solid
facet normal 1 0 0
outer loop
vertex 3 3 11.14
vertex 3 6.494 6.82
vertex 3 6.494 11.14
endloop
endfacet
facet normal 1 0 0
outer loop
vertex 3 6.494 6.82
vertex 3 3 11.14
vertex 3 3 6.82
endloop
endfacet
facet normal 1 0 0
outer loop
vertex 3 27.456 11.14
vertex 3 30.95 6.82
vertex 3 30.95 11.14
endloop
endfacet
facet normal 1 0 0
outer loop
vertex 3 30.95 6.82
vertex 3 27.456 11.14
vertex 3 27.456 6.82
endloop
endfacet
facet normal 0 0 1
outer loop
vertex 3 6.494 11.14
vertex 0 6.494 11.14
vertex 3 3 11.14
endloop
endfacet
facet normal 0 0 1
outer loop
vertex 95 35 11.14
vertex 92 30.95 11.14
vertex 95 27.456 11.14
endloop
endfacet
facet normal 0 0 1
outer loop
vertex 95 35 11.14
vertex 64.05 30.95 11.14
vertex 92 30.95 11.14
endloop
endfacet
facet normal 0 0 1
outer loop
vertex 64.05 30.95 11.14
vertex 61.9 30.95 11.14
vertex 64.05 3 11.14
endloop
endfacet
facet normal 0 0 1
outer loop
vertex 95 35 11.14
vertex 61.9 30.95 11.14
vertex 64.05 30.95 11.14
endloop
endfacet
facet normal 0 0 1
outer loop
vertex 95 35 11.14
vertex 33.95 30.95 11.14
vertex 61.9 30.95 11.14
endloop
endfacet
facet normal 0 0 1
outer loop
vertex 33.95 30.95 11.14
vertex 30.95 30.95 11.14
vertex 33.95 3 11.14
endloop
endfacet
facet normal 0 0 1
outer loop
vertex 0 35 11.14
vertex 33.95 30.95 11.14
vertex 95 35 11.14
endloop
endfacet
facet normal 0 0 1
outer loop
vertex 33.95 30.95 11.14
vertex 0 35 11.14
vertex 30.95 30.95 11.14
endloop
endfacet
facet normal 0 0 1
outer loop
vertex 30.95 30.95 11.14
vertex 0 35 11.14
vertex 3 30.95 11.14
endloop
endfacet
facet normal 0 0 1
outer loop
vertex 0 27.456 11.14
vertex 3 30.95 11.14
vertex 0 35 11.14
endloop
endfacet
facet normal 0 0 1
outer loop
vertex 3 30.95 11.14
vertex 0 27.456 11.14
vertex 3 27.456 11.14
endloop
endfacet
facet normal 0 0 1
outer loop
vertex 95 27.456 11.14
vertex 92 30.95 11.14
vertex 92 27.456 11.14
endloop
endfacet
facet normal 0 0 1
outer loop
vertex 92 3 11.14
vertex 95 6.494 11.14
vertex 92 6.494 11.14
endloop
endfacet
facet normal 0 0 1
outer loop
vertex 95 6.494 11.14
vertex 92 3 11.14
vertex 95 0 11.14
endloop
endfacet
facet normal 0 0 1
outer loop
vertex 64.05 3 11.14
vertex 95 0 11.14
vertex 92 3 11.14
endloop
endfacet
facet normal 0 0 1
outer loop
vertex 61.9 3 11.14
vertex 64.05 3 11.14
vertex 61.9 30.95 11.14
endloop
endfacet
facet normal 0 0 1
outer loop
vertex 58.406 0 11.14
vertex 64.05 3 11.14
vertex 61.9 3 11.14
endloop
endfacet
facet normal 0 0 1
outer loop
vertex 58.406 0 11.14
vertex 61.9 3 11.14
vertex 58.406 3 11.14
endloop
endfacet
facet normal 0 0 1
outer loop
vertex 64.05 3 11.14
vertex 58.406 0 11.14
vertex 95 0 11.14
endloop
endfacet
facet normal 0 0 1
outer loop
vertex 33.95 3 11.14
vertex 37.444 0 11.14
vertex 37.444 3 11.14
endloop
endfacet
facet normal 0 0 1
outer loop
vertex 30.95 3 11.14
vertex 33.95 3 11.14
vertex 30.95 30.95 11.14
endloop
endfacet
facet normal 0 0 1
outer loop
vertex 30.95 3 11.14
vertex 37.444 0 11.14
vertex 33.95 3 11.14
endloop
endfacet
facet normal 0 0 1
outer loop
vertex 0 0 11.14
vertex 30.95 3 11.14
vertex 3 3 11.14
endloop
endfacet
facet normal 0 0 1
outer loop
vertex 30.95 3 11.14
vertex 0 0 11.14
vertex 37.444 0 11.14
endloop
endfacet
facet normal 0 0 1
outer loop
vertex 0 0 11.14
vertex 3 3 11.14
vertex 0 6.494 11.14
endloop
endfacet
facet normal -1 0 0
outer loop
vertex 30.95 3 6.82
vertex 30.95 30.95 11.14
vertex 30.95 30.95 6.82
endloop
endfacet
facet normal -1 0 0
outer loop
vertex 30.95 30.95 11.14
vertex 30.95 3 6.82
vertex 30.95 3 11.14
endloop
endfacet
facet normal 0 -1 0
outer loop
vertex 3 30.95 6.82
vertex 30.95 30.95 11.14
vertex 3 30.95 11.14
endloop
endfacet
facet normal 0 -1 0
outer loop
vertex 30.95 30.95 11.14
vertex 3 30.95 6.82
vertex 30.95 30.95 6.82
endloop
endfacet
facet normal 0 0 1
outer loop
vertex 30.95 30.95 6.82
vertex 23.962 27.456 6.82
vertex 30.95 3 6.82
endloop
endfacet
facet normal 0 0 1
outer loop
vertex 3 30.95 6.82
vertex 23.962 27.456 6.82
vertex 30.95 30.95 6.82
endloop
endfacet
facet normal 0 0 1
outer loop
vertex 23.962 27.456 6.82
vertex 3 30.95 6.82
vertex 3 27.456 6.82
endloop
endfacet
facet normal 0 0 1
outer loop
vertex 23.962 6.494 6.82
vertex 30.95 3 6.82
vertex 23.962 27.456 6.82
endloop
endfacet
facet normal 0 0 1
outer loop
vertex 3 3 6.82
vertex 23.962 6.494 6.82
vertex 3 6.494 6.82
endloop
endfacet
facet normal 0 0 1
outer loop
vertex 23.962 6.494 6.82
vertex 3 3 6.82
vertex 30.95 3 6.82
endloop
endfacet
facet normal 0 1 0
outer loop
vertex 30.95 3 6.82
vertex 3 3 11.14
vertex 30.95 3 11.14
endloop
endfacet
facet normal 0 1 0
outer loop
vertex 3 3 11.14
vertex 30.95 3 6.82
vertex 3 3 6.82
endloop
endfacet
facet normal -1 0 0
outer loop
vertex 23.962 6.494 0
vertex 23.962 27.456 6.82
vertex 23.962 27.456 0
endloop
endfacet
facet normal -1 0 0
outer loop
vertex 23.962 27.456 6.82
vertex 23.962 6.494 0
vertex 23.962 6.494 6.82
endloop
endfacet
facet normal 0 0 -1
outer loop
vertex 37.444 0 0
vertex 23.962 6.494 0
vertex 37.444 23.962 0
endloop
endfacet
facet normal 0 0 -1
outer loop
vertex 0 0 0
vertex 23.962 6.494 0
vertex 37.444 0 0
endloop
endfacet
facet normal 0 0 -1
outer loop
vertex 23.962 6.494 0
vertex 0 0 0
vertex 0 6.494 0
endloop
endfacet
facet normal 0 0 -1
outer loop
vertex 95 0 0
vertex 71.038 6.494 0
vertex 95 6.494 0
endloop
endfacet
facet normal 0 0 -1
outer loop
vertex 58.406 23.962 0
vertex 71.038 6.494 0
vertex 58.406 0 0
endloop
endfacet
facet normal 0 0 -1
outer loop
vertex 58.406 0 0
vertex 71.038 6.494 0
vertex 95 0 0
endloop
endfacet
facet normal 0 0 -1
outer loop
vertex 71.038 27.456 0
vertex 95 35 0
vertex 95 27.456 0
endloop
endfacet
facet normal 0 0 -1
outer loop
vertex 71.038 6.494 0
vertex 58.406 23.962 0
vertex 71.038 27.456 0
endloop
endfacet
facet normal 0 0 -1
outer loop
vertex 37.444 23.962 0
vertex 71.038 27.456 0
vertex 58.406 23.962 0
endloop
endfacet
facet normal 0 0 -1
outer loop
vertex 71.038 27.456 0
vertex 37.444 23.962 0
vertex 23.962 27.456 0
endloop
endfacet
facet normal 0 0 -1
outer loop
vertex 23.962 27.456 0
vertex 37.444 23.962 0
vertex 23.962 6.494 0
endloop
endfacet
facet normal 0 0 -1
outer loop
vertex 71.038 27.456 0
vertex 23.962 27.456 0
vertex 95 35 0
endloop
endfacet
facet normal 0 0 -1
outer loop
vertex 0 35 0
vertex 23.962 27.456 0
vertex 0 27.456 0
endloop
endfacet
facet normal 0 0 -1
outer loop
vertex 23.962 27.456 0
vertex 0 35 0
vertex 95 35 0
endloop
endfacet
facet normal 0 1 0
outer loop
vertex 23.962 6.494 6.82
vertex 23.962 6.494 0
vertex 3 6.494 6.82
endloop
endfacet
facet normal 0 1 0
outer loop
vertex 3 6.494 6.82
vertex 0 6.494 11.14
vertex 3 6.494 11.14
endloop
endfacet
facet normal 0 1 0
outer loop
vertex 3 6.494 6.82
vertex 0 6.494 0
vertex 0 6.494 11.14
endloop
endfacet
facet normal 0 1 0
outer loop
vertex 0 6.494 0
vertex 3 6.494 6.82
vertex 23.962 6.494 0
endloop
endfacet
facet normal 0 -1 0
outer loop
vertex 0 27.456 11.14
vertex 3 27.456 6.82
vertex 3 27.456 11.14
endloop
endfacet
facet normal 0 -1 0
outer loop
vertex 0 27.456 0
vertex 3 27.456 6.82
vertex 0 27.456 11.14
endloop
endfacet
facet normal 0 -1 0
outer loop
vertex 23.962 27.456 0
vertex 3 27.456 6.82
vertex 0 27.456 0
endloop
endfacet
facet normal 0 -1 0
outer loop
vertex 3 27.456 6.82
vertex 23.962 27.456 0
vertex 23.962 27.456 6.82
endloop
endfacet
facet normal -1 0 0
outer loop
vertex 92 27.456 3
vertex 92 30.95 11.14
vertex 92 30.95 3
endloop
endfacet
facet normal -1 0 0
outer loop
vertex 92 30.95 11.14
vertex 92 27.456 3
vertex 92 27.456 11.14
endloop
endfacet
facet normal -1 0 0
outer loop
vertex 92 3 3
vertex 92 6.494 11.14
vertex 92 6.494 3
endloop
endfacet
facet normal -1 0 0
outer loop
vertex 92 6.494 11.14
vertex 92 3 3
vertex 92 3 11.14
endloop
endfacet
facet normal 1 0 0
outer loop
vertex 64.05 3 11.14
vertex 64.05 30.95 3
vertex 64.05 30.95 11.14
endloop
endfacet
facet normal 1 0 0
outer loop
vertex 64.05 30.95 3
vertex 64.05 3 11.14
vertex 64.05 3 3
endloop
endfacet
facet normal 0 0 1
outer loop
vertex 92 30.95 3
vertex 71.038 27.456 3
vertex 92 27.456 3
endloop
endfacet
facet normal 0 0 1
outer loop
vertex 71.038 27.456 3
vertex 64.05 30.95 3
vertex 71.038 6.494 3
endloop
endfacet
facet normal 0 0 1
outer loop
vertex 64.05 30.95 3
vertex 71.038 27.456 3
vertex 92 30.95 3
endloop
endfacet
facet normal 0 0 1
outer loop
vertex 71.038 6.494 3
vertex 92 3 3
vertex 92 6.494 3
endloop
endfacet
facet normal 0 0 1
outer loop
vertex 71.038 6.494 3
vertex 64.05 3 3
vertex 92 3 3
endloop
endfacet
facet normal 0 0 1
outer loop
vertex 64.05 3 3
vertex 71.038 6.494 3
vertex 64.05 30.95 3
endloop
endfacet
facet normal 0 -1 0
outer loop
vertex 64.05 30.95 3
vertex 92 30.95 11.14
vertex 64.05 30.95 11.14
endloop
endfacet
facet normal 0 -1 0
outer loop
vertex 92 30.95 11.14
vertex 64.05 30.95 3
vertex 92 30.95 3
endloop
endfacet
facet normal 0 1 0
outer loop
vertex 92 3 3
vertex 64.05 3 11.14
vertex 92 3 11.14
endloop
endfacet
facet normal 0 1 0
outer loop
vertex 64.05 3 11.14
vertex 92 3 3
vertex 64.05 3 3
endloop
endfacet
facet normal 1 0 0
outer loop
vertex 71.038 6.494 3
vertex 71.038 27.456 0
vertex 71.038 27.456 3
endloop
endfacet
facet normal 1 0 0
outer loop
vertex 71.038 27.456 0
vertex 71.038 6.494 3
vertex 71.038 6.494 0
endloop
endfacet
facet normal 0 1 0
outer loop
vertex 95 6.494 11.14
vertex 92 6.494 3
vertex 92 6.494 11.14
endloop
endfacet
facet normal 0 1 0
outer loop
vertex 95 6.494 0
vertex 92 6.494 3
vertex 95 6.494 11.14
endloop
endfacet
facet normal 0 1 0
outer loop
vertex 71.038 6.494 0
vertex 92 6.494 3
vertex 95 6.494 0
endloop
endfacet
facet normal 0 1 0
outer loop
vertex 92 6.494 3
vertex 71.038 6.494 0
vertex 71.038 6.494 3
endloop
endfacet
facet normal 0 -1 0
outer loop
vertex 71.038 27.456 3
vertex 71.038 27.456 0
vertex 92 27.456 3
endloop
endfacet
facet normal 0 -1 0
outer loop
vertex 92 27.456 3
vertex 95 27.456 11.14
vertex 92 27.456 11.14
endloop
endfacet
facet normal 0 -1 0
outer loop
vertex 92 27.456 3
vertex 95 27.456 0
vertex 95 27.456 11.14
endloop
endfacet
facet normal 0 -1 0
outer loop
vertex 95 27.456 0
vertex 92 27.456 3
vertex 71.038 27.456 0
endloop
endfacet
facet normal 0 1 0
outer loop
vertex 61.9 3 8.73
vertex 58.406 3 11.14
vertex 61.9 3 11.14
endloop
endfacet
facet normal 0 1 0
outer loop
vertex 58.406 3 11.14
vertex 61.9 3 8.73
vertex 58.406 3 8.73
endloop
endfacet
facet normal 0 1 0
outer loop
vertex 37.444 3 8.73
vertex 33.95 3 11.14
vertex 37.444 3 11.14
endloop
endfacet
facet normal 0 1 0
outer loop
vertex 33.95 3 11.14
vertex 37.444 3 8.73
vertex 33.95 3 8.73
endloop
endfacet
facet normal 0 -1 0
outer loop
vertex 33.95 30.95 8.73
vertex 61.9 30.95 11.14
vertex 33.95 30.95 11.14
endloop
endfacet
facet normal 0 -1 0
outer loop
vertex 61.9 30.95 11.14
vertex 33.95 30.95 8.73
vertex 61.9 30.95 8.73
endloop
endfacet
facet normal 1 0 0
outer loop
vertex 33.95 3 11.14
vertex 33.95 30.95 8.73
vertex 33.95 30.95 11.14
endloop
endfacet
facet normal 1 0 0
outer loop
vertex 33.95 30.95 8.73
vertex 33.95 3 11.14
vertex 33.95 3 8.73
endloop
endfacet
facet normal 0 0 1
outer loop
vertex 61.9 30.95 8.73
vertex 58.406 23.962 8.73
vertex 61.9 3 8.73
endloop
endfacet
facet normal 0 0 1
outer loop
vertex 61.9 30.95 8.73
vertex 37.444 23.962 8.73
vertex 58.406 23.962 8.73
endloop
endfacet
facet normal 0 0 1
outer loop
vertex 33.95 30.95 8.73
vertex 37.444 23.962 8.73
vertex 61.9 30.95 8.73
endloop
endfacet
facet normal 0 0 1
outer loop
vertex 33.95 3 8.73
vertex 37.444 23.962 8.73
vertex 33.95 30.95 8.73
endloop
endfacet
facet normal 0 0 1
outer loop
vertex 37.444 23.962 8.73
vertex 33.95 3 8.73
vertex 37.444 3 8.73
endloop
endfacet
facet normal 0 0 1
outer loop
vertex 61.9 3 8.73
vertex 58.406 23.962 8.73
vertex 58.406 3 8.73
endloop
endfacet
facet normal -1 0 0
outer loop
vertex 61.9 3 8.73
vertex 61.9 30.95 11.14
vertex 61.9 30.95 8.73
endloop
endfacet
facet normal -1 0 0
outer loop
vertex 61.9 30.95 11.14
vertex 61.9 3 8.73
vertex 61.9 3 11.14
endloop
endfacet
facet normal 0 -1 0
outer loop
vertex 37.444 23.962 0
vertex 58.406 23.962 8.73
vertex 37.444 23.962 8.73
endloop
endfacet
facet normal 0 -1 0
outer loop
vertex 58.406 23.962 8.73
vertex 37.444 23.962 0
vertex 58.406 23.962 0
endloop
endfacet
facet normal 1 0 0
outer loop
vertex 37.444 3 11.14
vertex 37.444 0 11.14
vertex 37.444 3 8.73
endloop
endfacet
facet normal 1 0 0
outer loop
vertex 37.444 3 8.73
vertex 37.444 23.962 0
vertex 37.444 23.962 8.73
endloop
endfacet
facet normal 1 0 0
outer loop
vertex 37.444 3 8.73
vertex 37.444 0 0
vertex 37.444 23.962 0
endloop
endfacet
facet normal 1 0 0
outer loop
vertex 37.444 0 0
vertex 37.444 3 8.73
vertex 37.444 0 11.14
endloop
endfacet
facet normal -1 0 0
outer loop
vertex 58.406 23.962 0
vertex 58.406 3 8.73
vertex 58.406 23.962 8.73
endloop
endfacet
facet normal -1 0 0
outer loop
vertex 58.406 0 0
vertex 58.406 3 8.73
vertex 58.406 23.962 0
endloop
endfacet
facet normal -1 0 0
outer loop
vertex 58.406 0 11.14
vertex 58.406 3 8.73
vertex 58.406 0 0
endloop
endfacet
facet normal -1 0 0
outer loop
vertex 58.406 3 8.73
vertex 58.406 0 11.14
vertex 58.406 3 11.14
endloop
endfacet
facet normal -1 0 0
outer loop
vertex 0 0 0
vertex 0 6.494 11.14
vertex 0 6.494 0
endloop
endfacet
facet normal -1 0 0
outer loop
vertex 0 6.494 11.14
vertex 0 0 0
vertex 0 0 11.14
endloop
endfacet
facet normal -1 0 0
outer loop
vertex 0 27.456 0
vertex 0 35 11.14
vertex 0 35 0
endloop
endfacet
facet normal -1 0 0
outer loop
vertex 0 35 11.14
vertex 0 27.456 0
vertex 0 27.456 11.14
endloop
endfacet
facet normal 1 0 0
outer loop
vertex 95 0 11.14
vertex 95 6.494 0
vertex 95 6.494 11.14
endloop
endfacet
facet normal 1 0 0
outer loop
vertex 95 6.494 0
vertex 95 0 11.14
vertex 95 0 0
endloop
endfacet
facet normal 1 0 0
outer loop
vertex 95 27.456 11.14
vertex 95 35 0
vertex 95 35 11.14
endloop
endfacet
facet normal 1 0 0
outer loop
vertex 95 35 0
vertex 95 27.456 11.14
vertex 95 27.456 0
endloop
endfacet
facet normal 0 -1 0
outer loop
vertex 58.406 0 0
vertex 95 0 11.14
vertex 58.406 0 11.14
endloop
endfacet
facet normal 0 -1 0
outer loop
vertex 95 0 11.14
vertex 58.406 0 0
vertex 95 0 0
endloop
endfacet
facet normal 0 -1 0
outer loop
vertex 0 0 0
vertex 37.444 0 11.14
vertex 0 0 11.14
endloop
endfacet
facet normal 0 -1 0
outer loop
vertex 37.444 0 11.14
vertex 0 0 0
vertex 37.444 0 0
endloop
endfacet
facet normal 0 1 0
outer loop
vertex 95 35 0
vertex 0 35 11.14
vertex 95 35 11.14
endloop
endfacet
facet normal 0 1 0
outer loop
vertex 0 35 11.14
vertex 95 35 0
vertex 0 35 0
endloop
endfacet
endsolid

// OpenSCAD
// file: SquarePileLib.scad
module LeftPile(wallThickness, totalHeight, singlePileHeight, singlePileWidth, singlePileLength, pileCount){
//    15.05 by 14.95 by 2.15
    pileHeight = (pileCount * singlePileHeight) + .5;
    openingSize = singlePileWidth * .75;
    blockerSize = (singlePileLength - openingSize) / 2;
    
    translate([wallThickness, wallThickness, totalHeight - pileHeight])
        cube([singlePileLength, singlePileWidth, pileHeight]);
    translate([-.00001, wallThickness + (blockerSize), 0])
        cube([wallThickness + openingSize, openingSize, totalHeight]);
}

module RightPile(wallThickness, totalHeight, singlePileHeight, singlePileWidth, singlePileLength, pileCount){
    translate([0, wallThickness + wallThickness + singlePileWidth, 0])
        rotate([0, 0, 180])
            LeftPile(wallThickness, totalHeight, singlePileHeight, singlePileWidth, singlePileLength, pileCount);
}

module BottomPile(wallThickness, totalHeight, singlePileHeight, singlePileWidth, singlePileLength, pileCount){
    translate([wallThickness + wallThickness + singlePileWidth, 0, 0])
        rotate([0, 0, 90])
            LeftPile(wallThickness, totalHeight, singlePileHeight, singlePileWidth, singlePileLength, pileCount);
}

module TopPile(wallThickness, totalHeight, singlePileHeight, singlePileWidth, singlePileLength, pileCount){
//    translate([
//        wallThickness + wallThickness + singlePileWidth,
//        wallThickness + wallThickness + singlePileWidth,
//        0])
        rotate([0, 0, 270])
            LeftPile(wallThickness, totalHeight, singlePileHeight, singlePileWidth, singlePileLength, pileCount);
}
// file: EotVRecruitsLib.scad
include<SquarePileLib.scad>
singleRecruitPileHeight = 1.91;
singleRecruitPileWidth = 26.45 + 1.5;
singleRecruitPileLength = 26.45 + 1.5;

module LeftRecruitPile(wallThickness, totalHeight, recruitPileCount){
    LeftPile(
        wallThickness,
        totalHeight,
        singleRecruitPileHeight,
        singleRecruitPileWidth,
        singleRecruitPileLength,
        recruitPileCount);
}

module RightRecruitPile(wallThickness, totalHeight, recruitPileCount){
    RightPile(
        wallThickness,
        totalHeight,
        singleRecruitPileHeight,
        singleRecruitPileWidth,
        singleRecruitPileLength,
        recruitPileCount);
}

module BottomRecruitPile(wallThickness, totalHeight, recruitPileCount){
    BottomPile(
        wallThickness,
        totalHeight,
        singleRecruitPileHeight,
        singleRecruitPileWidth,
        singleRecruitPileLength,
        recruitPileCount);
}

module TopRecruitPile(wallThickness, totalHeight, recruitPileCount){
    TopPile(
        wallThickness,
        totalHeight,
        singleRecruitPileHeight,
        singleRecruitPileWidth,
        singleRecruitPileLength,
        recruitPileCount);
}

function recruitPileHeight(recruitPileCount) =
    (recruitPileCount * singleRecruitPileHeight) + .5;
// main file
include<EotVRecruitsLib.scad>
difference() {
    testBoxHeight = recruitPileHeight(4) + 3;
    testBoxLength = 95;
    testBoxWidth = 35;
    wallThickness = 3;
    
    cube([testBoxLength, testBoxWidth, testBoxHeight]);
    LeftRecruitPile(wallThickness, testBoxHeight, 2);
//    translate([100 - (15.05 + .8), 0, 0])
    translate([testBoxLength, 0, 0])
        RightRecruitPile(wallThickness, testBoxHeight, 4);
    translate([singleRecruitPileLength + wallThickness, 0, 0])
        BottomRecruitPile(wallThickness, testBoxHeight, 1);
    //translate([0, testBoxWidth, 0])
        //TopRecruitPile(wallThickness, testBoxHeight, 4);
}
